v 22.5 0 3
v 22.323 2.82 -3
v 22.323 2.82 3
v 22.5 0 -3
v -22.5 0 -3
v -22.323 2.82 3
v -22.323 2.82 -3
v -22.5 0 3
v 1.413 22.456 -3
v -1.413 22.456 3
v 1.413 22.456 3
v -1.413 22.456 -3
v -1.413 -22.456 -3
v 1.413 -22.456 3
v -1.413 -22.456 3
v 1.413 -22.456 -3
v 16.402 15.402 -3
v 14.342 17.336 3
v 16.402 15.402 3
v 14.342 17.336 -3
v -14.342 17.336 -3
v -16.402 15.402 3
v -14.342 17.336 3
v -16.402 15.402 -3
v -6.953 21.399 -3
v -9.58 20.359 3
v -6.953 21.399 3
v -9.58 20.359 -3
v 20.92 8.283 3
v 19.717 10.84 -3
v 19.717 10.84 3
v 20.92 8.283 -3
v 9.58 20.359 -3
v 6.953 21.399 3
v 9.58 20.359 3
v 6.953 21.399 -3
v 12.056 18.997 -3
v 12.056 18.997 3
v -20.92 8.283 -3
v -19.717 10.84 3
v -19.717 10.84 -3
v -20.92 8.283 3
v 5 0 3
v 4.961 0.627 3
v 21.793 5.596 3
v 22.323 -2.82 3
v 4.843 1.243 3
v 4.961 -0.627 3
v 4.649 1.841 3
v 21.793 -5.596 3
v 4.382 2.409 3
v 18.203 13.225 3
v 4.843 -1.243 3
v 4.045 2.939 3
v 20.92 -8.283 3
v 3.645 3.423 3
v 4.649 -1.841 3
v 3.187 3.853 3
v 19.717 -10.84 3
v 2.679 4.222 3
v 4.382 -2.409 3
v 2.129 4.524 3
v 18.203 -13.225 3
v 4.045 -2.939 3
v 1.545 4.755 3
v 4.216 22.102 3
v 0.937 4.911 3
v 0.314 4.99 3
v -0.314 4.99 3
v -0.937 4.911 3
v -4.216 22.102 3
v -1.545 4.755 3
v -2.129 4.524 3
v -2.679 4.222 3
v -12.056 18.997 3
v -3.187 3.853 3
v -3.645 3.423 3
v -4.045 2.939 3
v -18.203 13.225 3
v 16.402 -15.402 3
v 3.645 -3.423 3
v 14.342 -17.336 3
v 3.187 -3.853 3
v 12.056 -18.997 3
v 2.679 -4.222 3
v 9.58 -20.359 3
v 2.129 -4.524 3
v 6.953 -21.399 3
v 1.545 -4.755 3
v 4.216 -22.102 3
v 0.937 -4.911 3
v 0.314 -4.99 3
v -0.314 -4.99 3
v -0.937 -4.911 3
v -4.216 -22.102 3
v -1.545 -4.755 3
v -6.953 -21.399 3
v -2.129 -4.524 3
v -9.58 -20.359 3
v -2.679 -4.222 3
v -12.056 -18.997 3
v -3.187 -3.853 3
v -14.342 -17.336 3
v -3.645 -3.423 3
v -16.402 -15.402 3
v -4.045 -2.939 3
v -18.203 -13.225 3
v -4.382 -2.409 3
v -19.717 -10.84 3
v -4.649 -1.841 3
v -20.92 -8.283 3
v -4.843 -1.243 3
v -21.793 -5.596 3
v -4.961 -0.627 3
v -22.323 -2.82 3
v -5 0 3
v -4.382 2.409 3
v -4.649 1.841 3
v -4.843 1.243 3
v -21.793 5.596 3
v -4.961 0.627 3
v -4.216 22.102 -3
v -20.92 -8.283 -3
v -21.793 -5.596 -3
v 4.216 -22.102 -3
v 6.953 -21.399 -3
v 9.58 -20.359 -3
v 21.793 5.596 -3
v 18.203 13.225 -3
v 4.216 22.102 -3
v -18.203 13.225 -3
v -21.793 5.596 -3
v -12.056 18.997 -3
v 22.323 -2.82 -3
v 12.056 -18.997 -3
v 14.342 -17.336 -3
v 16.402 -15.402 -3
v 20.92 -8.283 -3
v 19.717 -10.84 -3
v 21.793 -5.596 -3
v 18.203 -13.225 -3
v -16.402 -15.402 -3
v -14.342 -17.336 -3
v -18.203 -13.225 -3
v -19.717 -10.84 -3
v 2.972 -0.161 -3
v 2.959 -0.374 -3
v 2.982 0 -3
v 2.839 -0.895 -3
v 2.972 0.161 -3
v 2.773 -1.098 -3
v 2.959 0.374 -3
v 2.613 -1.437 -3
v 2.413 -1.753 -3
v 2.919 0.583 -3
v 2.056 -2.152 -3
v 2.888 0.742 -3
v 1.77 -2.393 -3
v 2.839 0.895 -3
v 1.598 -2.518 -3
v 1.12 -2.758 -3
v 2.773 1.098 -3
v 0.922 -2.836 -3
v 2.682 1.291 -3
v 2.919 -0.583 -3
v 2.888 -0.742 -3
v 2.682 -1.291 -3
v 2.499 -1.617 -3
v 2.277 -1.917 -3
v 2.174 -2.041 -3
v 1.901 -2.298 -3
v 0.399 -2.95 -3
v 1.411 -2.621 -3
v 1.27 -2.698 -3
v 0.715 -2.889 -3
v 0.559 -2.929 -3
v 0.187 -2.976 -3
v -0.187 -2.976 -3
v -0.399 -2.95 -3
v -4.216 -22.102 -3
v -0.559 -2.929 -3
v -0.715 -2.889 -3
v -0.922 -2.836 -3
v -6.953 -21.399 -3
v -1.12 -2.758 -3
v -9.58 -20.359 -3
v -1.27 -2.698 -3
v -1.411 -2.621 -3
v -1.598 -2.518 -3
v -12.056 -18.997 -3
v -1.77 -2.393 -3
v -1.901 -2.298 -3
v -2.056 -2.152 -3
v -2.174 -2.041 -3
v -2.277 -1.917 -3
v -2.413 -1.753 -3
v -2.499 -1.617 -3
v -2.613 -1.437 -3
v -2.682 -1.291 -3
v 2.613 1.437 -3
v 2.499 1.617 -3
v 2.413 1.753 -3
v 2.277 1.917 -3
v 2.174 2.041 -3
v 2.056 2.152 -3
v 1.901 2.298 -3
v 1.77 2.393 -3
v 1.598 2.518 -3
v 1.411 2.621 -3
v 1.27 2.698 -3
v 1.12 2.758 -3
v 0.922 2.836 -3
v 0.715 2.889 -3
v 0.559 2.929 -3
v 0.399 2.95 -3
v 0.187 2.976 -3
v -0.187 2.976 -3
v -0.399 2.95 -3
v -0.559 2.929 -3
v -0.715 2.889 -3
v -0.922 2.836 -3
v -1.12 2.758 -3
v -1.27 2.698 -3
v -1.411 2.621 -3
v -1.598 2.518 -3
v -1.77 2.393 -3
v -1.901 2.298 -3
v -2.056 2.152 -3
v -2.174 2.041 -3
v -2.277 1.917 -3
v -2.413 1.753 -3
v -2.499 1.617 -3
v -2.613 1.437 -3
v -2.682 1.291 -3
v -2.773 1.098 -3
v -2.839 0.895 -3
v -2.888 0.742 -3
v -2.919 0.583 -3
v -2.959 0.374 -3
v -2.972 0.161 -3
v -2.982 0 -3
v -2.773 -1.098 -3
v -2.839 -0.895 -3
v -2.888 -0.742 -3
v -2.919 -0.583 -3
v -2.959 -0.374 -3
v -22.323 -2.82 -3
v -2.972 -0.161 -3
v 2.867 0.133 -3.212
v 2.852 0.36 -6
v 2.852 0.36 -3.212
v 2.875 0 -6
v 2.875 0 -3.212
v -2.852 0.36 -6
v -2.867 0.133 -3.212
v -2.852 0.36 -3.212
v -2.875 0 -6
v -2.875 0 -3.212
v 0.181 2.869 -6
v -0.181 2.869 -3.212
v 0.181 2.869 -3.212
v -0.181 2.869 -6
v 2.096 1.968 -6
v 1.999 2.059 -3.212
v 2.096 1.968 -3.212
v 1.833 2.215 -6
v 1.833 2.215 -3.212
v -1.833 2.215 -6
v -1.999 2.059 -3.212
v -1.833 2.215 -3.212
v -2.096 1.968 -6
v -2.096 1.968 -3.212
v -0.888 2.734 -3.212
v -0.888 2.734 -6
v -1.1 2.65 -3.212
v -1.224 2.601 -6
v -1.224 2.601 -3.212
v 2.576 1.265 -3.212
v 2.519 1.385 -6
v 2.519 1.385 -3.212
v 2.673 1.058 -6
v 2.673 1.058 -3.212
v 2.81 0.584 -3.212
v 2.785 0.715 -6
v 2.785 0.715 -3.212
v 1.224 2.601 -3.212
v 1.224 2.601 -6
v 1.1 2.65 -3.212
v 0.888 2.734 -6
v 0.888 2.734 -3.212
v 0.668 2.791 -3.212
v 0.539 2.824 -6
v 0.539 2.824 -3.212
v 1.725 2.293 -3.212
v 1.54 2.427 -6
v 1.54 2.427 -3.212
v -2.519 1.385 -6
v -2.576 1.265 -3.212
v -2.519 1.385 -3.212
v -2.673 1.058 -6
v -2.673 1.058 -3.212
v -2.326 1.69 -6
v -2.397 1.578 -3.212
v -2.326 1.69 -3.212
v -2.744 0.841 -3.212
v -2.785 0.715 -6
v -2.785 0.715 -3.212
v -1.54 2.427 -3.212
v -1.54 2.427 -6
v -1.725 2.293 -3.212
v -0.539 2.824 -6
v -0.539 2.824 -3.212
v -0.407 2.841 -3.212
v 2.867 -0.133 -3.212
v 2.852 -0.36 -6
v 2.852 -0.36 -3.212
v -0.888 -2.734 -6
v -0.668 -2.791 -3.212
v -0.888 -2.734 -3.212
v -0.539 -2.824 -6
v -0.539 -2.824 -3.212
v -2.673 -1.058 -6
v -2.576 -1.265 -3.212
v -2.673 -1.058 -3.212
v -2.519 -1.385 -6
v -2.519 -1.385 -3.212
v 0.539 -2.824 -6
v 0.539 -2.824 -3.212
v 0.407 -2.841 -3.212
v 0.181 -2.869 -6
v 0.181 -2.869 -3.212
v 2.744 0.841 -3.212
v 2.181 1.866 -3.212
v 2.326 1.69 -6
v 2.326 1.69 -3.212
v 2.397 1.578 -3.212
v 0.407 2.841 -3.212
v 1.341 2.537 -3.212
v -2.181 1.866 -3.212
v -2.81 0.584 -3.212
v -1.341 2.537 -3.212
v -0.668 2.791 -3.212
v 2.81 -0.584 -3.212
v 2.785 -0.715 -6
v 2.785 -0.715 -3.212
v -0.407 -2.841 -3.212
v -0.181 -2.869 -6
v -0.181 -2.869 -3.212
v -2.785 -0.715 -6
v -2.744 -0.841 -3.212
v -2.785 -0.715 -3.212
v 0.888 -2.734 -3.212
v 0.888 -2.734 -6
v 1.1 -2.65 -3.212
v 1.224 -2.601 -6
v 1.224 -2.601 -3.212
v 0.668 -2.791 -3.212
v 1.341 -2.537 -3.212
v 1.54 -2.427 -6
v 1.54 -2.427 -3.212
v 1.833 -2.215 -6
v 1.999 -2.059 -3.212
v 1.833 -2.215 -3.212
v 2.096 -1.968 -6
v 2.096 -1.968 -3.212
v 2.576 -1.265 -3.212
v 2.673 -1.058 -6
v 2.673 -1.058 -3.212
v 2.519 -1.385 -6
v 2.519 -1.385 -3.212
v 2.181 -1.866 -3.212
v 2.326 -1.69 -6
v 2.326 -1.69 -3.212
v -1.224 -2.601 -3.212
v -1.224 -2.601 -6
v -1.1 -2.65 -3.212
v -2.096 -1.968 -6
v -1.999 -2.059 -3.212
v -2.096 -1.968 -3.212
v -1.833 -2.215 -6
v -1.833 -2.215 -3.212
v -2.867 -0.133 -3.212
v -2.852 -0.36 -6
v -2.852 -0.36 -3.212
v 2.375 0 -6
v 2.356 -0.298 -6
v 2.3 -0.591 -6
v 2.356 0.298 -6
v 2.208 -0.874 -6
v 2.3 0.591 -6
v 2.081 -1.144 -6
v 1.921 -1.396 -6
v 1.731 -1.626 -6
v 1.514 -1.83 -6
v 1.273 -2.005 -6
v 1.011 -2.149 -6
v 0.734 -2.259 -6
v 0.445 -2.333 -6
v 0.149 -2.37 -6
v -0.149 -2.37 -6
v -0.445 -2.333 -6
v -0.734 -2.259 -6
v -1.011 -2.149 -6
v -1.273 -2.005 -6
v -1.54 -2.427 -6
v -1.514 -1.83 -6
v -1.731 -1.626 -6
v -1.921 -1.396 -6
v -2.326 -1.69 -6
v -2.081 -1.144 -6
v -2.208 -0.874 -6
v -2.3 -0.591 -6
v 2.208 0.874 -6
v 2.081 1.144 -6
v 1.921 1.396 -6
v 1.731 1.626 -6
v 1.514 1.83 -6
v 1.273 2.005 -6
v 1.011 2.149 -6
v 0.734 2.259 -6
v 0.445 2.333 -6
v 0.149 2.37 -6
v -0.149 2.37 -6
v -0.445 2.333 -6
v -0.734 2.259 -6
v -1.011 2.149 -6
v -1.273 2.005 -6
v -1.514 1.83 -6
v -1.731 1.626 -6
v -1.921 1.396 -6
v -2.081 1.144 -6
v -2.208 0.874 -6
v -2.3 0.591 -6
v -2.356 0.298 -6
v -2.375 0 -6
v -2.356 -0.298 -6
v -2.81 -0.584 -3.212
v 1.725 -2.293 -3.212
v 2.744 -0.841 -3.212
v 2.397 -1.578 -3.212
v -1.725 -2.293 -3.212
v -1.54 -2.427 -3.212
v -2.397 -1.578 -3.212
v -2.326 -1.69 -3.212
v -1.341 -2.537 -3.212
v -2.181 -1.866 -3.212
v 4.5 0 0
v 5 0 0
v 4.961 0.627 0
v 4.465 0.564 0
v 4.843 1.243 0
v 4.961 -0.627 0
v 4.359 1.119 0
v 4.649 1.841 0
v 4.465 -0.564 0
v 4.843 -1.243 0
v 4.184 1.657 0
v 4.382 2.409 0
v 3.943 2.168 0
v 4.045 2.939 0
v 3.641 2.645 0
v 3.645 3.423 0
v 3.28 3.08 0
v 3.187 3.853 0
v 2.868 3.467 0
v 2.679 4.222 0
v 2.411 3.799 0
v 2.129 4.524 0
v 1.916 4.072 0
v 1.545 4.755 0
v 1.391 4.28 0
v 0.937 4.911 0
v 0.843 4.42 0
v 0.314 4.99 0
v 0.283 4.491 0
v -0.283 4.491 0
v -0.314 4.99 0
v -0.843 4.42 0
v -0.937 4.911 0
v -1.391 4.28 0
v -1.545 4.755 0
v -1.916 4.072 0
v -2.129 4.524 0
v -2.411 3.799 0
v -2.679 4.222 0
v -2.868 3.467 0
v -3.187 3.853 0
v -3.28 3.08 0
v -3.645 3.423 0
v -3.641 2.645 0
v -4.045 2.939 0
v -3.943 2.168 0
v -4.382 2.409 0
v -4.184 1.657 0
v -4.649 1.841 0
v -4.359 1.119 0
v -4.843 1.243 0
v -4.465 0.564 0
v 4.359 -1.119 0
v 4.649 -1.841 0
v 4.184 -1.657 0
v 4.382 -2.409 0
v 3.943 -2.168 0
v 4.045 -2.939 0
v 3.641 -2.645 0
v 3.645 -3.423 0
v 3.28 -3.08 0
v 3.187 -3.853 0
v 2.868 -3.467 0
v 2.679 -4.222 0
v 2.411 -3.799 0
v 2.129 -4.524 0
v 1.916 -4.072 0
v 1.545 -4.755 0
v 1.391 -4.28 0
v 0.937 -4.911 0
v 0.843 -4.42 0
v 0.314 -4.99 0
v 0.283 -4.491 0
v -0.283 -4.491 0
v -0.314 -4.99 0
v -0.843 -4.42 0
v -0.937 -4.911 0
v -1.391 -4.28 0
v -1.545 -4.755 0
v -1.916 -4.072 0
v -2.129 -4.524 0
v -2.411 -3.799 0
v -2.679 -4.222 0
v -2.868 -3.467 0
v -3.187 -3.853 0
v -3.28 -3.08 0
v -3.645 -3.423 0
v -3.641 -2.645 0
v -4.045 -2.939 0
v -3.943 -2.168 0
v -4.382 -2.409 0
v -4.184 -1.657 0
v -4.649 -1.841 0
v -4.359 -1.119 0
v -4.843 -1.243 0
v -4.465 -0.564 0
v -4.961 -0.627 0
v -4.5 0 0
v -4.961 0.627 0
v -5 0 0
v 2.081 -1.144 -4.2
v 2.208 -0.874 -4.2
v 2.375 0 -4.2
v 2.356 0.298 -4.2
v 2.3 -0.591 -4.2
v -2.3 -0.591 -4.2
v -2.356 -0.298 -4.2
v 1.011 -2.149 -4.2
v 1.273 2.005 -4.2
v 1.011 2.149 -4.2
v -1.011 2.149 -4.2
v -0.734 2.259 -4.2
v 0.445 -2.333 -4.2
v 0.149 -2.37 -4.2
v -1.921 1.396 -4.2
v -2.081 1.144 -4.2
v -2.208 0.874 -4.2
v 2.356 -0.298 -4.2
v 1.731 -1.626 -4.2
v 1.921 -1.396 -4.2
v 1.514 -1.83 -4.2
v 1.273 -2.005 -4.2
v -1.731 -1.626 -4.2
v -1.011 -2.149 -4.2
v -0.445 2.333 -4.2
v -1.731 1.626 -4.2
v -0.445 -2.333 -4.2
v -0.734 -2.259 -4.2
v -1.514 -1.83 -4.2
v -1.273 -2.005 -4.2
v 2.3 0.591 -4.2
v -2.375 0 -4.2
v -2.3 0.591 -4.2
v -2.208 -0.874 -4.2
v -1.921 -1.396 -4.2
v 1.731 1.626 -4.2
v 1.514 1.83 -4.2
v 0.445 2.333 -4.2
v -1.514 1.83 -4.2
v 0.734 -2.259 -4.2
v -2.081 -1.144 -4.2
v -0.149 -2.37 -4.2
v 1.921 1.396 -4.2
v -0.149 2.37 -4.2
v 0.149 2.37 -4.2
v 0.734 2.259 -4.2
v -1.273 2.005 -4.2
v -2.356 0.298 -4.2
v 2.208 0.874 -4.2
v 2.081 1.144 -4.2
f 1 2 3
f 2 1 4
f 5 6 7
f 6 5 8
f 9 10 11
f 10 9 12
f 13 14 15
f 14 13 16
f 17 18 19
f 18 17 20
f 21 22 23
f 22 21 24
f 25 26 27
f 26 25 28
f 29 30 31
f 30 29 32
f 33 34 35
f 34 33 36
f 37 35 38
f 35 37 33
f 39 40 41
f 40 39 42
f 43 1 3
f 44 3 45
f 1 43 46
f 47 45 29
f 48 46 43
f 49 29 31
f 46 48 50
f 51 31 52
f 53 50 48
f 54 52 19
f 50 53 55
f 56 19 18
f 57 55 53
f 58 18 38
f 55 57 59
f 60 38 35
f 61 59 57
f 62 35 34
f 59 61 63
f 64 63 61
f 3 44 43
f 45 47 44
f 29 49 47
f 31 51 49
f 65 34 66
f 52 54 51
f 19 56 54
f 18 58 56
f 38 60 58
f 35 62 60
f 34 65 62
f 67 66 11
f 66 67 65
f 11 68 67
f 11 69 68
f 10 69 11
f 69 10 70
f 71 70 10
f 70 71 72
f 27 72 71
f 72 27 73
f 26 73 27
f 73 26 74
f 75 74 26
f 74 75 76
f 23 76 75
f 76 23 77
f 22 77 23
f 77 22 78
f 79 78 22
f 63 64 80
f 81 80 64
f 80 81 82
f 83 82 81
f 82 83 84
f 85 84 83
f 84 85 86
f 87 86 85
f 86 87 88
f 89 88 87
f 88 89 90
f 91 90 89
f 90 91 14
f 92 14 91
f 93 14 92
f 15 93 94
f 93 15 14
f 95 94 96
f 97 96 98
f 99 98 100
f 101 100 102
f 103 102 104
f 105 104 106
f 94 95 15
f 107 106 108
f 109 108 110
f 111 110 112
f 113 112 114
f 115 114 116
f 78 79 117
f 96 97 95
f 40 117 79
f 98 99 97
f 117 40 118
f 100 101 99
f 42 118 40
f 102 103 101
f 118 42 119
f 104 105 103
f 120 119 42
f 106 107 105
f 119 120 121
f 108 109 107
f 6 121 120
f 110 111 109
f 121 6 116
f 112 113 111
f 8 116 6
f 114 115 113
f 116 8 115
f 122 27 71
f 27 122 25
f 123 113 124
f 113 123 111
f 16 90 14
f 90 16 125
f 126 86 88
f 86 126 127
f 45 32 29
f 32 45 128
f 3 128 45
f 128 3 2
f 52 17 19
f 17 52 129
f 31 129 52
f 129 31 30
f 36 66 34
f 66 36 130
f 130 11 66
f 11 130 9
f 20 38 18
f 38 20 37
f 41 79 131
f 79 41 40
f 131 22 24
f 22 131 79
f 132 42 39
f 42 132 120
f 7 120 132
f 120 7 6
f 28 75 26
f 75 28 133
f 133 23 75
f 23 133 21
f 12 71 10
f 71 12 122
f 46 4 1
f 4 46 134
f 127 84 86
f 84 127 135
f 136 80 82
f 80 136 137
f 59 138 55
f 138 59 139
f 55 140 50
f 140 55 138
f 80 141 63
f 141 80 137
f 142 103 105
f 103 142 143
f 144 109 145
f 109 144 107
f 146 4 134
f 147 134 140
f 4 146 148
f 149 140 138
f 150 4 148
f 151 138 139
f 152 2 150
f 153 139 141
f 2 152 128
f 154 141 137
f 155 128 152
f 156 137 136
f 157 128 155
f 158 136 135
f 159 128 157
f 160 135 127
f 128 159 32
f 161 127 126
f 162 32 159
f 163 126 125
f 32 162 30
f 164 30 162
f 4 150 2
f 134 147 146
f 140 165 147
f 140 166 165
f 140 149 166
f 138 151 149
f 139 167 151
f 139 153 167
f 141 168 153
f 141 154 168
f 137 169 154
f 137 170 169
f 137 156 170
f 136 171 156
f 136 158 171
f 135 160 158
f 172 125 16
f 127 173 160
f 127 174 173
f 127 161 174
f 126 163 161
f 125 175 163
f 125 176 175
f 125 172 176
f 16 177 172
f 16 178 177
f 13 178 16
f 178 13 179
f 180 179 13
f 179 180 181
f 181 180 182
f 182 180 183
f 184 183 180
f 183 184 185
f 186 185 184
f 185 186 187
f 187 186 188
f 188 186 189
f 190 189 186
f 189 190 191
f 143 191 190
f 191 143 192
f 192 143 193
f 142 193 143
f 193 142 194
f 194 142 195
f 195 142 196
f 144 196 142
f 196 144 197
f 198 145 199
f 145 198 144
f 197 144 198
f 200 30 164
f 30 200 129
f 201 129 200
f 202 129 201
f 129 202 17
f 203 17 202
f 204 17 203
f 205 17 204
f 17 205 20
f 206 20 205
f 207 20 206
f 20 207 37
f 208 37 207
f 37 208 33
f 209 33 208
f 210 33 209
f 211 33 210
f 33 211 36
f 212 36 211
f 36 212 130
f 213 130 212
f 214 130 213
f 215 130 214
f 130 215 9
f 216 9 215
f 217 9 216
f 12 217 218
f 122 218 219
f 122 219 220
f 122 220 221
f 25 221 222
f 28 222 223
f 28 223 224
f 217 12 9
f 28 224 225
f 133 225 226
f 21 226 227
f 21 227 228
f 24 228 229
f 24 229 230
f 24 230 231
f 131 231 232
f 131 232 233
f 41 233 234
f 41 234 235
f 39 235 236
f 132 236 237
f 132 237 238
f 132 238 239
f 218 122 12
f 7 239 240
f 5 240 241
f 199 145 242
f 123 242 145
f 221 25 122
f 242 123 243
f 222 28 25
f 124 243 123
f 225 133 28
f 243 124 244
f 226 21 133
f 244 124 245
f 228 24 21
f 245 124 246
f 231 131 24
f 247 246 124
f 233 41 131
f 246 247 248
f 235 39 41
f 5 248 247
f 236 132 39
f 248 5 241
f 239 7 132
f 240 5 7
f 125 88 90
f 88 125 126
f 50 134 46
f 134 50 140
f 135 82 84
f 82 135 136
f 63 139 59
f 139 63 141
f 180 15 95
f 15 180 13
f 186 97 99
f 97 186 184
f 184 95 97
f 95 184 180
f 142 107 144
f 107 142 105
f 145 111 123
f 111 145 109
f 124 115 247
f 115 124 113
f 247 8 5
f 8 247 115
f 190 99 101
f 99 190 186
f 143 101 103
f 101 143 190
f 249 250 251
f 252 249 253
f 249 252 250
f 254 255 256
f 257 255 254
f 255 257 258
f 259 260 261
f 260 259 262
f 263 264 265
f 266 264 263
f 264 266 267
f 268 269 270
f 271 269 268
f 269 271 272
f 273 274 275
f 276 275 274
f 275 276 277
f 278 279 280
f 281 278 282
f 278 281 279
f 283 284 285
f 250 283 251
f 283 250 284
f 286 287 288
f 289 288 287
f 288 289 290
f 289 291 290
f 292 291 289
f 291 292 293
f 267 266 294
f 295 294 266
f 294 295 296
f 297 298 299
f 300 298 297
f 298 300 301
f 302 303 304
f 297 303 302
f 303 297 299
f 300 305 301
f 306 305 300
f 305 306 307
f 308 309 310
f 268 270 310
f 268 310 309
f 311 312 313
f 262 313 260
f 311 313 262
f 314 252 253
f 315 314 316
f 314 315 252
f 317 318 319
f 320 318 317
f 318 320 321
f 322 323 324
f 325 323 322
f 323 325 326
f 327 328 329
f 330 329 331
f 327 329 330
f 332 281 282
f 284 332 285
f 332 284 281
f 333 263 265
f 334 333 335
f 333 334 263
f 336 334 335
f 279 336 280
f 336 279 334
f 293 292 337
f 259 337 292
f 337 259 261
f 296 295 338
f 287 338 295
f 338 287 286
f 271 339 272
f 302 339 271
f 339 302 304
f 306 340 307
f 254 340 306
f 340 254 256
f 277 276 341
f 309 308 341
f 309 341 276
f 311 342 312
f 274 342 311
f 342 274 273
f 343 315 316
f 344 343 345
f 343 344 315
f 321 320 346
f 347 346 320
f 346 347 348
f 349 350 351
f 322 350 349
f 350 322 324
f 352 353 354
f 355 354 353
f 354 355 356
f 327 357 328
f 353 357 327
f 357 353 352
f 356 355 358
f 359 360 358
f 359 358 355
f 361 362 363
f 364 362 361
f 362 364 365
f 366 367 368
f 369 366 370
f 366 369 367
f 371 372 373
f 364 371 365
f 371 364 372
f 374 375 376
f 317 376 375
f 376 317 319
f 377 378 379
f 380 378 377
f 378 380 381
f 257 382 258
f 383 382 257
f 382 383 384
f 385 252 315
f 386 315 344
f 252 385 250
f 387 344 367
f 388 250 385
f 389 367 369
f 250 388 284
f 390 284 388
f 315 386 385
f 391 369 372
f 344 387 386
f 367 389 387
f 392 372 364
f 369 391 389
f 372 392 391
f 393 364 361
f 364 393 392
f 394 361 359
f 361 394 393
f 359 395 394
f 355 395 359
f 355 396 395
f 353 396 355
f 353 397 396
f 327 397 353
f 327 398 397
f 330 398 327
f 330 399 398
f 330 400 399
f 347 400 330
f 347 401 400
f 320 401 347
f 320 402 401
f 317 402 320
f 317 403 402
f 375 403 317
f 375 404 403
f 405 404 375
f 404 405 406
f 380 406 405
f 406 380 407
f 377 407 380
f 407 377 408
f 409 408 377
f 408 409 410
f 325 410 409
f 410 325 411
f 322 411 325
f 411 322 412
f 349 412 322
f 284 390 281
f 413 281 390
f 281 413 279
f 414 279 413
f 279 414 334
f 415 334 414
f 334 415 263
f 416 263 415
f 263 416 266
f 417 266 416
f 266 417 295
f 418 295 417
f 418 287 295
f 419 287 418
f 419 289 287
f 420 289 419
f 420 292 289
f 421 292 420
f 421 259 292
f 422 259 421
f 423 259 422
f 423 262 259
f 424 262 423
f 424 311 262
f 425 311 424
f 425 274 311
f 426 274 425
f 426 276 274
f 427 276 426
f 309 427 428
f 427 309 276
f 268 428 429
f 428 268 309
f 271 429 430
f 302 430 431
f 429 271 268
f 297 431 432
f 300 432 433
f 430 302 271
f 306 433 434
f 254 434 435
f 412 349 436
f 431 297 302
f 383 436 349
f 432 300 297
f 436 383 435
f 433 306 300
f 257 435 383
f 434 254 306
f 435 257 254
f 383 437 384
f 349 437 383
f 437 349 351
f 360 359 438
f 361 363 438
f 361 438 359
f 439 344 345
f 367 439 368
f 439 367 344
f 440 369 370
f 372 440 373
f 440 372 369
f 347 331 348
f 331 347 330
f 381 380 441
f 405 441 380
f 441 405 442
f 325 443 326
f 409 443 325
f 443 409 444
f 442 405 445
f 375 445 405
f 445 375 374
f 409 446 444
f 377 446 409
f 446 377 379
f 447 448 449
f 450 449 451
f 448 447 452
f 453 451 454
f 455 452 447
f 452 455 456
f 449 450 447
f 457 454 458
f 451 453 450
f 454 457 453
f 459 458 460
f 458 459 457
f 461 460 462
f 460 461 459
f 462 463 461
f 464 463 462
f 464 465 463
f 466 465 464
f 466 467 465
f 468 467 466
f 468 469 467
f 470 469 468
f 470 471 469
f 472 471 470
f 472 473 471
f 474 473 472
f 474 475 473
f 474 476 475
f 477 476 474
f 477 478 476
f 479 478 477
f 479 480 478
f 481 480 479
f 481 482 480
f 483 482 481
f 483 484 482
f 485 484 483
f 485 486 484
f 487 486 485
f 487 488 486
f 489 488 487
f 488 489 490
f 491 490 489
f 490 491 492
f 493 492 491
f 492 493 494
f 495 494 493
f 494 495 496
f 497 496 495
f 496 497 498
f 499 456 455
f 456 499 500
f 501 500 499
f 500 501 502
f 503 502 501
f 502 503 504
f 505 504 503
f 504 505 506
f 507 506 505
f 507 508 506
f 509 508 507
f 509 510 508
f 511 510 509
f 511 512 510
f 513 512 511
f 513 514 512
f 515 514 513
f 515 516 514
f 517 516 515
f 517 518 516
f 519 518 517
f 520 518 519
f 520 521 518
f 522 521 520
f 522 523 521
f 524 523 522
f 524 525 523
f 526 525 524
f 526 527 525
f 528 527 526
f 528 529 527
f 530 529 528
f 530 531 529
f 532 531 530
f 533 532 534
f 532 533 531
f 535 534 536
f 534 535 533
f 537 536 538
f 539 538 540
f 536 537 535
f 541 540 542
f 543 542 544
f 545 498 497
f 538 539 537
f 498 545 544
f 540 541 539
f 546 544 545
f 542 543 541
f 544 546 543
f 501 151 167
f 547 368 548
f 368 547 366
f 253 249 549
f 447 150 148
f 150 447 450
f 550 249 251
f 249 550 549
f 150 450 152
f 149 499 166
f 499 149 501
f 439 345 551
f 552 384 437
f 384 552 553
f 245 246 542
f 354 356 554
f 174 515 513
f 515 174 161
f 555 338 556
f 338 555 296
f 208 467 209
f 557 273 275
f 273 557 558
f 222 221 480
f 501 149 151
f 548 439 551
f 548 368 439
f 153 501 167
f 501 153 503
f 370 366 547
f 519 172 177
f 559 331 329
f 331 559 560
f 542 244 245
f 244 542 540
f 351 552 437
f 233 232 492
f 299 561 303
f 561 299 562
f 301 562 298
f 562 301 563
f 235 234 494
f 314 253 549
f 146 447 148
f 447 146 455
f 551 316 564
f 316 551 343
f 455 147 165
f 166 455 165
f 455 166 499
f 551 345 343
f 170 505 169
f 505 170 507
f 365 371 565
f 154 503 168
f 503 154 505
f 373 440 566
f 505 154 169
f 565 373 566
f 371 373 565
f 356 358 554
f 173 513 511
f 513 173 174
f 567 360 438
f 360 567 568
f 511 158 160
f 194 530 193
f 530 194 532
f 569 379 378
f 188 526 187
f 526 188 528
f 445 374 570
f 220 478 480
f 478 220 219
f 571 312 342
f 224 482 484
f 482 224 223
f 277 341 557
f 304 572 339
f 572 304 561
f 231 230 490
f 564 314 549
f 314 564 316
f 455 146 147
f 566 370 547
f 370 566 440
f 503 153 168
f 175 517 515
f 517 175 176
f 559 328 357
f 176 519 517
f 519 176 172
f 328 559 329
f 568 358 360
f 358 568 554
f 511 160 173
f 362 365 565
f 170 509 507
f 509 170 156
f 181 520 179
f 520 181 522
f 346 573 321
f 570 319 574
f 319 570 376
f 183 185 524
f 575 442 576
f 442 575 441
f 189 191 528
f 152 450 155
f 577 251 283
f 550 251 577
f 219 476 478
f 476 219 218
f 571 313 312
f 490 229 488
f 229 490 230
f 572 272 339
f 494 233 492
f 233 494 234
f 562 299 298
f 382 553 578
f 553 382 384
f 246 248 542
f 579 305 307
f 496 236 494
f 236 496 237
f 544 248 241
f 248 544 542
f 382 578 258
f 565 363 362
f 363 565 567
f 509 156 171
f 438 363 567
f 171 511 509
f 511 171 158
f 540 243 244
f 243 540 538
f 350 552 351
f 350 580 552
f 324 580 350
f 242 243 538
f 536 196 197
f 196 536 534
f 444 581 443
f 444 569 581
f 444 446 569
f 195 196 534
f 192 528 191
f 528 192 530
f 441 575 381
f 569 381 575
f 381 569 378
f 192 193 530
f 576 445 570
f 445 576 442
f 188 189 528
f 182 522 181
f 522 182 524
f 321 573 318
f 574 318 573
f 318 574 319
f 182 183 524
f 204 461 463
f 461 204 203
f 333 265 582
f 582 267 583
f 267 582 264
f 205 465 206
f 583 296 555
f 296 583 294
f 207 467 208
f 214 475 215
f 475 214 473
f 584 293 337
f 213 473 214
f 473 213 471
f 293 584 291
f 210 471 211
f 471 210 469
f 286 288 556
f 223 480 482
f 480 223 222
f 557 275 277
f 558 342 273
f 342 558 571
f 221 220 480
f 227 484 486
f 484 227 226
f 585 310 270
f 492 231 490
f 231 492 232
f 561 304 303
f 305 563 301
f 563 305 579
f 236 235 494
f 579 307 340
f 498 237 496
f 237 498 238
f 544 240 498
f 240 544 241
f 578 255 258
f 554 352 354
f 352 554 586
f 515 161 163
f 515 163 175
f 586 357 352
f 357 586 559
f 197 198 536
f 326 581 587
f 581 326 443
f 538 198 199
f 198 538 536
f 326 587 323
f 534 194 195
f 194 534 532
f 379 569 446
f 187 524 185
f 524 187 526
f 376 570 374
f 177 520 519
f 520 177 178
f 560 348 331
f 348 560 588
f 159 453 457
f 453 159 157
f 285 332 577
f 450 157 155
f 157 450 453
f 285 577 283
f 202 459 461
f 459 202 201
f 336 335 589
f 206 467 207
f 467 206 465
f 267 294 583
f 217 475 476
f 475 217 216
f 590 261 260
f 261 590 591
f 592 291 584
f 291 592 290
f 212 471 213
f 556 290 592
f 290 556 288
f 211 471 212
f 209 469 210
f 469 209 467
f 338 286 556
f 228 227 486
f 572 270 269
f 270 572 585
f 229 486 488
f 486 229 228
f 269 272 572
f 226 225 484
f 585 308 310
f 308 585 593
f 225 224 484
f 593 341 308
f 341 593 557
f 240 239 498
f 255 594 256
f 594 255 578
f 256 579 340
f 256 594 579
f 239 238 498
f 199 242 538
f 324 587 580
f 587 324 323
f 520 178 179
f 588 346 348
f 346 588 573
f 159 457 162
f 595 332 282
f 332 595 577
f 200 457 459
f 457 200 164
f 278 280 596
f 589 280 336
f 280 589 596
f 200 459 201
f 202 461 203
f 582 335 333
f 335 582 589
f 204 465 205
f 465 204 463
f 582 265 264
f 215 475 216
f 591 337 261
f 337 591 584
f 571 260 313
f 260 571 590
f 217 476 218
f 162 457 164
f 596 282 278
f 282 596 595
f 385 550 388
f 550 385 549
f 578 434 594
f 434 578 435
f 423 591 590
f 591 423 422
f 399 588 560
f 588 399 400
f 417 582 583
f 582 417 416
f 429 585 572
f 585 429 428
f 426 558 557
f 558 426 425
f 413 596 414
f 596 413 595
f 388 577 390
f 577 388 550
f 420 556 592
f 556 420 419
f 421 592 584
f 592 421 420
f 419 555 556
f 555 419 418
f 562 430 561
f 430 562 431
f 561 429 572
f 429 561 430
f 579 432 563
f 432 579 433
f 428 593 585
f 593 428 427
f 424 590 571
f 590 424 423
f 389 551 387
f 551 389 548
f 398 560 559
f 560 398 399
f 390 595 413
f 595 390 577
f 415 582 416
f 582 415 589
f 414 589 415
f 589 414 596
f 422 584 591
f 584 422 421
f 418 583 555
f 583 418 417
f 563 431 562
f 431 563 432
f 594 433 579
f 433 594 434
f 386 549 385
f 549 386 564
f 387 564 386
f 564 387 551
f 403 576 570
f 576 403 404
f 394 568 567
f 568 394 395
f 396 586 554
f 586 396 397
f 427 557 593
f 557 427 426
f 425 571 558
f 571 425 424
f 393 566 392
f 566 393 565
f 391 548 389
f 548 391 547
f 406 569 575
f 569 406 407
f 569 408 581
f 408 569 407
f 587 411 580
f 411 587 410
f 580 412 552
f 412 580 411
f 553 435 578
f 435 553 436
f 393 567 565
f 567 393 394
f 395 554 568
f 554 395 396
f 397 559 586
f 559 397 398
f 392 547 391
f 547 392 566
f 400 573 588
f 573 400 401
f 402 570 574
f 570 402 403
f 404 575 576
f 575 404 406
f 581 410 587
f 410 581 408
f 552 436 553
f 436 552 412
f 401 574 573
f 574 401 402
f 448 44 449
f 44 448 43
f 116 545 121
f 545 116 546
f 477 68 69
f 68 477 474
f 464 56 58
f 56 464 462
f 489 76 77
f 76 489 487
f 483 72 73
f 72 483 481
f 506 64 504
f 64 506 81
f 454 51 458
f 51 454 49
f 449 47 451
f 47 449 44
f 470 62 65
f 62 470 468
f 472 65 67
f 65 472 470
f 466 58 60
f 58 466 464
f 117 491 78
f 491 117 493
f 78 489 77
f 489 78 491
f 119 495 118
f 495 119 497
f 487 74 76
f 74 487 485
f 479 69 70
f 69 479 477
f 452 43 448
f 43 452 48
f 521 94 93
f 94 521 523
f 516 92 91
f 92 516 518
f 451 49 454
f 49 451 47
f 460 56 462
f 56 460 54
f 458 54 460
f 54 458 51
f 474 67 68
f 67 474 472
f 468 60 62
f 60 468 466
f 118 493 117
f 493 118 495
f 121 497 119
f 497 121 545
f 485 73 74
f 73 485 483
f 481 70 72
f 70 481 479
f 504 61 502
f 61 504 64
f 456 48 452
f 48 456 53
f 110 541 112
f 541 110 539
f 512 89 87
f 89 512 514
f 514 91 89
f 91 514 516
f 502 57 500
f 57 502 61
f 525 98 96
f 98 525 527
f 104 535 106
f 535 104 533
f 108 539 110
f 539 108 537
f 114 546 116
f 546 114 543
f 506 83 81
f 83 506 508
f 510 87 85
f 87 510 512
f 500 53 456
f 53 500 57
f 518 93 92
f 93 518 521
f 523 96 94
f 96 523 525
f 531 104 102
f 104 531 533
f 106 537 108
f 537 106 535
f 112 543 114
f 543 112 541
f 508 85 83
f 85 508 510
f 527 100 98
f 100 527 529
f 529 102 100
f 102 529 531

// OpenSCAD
$fn = 50;

difference() {
	union() {
		translate(v = [0, 0, -3.0]) {
			cylinder(h = 6, r = 22.5);
		}
		#translate(v = [0, 0, -6.0]) {
			cylinder(h = 6, r = 2.875);
		}
	}
	union() {
		translate(v = [0, 0, 0]) {
			rotate(a = [0, 0, 0]) {
				difference() {
					union() {
						translate(v = [0, 0, -6.0]) {
							cylinder(h = 6, r = 2.25);
						}
						translate(v = [0, 0, -4.2]) {
							cylinder(h = 4.2, r1 = 2.375, r2 = 4.5);
						}
						translate(v = [0, 0, -6.0]) {
							cylinder(h = 6, r = 2.375);
						}
						translate(v = [0, 0, -6.0]) {
							cylinder(h = 6, r = 2.25);
						}
					}
					union();
				}
			}
		}
		#cylinder(h = 3, r = 5.0);
	}
}
